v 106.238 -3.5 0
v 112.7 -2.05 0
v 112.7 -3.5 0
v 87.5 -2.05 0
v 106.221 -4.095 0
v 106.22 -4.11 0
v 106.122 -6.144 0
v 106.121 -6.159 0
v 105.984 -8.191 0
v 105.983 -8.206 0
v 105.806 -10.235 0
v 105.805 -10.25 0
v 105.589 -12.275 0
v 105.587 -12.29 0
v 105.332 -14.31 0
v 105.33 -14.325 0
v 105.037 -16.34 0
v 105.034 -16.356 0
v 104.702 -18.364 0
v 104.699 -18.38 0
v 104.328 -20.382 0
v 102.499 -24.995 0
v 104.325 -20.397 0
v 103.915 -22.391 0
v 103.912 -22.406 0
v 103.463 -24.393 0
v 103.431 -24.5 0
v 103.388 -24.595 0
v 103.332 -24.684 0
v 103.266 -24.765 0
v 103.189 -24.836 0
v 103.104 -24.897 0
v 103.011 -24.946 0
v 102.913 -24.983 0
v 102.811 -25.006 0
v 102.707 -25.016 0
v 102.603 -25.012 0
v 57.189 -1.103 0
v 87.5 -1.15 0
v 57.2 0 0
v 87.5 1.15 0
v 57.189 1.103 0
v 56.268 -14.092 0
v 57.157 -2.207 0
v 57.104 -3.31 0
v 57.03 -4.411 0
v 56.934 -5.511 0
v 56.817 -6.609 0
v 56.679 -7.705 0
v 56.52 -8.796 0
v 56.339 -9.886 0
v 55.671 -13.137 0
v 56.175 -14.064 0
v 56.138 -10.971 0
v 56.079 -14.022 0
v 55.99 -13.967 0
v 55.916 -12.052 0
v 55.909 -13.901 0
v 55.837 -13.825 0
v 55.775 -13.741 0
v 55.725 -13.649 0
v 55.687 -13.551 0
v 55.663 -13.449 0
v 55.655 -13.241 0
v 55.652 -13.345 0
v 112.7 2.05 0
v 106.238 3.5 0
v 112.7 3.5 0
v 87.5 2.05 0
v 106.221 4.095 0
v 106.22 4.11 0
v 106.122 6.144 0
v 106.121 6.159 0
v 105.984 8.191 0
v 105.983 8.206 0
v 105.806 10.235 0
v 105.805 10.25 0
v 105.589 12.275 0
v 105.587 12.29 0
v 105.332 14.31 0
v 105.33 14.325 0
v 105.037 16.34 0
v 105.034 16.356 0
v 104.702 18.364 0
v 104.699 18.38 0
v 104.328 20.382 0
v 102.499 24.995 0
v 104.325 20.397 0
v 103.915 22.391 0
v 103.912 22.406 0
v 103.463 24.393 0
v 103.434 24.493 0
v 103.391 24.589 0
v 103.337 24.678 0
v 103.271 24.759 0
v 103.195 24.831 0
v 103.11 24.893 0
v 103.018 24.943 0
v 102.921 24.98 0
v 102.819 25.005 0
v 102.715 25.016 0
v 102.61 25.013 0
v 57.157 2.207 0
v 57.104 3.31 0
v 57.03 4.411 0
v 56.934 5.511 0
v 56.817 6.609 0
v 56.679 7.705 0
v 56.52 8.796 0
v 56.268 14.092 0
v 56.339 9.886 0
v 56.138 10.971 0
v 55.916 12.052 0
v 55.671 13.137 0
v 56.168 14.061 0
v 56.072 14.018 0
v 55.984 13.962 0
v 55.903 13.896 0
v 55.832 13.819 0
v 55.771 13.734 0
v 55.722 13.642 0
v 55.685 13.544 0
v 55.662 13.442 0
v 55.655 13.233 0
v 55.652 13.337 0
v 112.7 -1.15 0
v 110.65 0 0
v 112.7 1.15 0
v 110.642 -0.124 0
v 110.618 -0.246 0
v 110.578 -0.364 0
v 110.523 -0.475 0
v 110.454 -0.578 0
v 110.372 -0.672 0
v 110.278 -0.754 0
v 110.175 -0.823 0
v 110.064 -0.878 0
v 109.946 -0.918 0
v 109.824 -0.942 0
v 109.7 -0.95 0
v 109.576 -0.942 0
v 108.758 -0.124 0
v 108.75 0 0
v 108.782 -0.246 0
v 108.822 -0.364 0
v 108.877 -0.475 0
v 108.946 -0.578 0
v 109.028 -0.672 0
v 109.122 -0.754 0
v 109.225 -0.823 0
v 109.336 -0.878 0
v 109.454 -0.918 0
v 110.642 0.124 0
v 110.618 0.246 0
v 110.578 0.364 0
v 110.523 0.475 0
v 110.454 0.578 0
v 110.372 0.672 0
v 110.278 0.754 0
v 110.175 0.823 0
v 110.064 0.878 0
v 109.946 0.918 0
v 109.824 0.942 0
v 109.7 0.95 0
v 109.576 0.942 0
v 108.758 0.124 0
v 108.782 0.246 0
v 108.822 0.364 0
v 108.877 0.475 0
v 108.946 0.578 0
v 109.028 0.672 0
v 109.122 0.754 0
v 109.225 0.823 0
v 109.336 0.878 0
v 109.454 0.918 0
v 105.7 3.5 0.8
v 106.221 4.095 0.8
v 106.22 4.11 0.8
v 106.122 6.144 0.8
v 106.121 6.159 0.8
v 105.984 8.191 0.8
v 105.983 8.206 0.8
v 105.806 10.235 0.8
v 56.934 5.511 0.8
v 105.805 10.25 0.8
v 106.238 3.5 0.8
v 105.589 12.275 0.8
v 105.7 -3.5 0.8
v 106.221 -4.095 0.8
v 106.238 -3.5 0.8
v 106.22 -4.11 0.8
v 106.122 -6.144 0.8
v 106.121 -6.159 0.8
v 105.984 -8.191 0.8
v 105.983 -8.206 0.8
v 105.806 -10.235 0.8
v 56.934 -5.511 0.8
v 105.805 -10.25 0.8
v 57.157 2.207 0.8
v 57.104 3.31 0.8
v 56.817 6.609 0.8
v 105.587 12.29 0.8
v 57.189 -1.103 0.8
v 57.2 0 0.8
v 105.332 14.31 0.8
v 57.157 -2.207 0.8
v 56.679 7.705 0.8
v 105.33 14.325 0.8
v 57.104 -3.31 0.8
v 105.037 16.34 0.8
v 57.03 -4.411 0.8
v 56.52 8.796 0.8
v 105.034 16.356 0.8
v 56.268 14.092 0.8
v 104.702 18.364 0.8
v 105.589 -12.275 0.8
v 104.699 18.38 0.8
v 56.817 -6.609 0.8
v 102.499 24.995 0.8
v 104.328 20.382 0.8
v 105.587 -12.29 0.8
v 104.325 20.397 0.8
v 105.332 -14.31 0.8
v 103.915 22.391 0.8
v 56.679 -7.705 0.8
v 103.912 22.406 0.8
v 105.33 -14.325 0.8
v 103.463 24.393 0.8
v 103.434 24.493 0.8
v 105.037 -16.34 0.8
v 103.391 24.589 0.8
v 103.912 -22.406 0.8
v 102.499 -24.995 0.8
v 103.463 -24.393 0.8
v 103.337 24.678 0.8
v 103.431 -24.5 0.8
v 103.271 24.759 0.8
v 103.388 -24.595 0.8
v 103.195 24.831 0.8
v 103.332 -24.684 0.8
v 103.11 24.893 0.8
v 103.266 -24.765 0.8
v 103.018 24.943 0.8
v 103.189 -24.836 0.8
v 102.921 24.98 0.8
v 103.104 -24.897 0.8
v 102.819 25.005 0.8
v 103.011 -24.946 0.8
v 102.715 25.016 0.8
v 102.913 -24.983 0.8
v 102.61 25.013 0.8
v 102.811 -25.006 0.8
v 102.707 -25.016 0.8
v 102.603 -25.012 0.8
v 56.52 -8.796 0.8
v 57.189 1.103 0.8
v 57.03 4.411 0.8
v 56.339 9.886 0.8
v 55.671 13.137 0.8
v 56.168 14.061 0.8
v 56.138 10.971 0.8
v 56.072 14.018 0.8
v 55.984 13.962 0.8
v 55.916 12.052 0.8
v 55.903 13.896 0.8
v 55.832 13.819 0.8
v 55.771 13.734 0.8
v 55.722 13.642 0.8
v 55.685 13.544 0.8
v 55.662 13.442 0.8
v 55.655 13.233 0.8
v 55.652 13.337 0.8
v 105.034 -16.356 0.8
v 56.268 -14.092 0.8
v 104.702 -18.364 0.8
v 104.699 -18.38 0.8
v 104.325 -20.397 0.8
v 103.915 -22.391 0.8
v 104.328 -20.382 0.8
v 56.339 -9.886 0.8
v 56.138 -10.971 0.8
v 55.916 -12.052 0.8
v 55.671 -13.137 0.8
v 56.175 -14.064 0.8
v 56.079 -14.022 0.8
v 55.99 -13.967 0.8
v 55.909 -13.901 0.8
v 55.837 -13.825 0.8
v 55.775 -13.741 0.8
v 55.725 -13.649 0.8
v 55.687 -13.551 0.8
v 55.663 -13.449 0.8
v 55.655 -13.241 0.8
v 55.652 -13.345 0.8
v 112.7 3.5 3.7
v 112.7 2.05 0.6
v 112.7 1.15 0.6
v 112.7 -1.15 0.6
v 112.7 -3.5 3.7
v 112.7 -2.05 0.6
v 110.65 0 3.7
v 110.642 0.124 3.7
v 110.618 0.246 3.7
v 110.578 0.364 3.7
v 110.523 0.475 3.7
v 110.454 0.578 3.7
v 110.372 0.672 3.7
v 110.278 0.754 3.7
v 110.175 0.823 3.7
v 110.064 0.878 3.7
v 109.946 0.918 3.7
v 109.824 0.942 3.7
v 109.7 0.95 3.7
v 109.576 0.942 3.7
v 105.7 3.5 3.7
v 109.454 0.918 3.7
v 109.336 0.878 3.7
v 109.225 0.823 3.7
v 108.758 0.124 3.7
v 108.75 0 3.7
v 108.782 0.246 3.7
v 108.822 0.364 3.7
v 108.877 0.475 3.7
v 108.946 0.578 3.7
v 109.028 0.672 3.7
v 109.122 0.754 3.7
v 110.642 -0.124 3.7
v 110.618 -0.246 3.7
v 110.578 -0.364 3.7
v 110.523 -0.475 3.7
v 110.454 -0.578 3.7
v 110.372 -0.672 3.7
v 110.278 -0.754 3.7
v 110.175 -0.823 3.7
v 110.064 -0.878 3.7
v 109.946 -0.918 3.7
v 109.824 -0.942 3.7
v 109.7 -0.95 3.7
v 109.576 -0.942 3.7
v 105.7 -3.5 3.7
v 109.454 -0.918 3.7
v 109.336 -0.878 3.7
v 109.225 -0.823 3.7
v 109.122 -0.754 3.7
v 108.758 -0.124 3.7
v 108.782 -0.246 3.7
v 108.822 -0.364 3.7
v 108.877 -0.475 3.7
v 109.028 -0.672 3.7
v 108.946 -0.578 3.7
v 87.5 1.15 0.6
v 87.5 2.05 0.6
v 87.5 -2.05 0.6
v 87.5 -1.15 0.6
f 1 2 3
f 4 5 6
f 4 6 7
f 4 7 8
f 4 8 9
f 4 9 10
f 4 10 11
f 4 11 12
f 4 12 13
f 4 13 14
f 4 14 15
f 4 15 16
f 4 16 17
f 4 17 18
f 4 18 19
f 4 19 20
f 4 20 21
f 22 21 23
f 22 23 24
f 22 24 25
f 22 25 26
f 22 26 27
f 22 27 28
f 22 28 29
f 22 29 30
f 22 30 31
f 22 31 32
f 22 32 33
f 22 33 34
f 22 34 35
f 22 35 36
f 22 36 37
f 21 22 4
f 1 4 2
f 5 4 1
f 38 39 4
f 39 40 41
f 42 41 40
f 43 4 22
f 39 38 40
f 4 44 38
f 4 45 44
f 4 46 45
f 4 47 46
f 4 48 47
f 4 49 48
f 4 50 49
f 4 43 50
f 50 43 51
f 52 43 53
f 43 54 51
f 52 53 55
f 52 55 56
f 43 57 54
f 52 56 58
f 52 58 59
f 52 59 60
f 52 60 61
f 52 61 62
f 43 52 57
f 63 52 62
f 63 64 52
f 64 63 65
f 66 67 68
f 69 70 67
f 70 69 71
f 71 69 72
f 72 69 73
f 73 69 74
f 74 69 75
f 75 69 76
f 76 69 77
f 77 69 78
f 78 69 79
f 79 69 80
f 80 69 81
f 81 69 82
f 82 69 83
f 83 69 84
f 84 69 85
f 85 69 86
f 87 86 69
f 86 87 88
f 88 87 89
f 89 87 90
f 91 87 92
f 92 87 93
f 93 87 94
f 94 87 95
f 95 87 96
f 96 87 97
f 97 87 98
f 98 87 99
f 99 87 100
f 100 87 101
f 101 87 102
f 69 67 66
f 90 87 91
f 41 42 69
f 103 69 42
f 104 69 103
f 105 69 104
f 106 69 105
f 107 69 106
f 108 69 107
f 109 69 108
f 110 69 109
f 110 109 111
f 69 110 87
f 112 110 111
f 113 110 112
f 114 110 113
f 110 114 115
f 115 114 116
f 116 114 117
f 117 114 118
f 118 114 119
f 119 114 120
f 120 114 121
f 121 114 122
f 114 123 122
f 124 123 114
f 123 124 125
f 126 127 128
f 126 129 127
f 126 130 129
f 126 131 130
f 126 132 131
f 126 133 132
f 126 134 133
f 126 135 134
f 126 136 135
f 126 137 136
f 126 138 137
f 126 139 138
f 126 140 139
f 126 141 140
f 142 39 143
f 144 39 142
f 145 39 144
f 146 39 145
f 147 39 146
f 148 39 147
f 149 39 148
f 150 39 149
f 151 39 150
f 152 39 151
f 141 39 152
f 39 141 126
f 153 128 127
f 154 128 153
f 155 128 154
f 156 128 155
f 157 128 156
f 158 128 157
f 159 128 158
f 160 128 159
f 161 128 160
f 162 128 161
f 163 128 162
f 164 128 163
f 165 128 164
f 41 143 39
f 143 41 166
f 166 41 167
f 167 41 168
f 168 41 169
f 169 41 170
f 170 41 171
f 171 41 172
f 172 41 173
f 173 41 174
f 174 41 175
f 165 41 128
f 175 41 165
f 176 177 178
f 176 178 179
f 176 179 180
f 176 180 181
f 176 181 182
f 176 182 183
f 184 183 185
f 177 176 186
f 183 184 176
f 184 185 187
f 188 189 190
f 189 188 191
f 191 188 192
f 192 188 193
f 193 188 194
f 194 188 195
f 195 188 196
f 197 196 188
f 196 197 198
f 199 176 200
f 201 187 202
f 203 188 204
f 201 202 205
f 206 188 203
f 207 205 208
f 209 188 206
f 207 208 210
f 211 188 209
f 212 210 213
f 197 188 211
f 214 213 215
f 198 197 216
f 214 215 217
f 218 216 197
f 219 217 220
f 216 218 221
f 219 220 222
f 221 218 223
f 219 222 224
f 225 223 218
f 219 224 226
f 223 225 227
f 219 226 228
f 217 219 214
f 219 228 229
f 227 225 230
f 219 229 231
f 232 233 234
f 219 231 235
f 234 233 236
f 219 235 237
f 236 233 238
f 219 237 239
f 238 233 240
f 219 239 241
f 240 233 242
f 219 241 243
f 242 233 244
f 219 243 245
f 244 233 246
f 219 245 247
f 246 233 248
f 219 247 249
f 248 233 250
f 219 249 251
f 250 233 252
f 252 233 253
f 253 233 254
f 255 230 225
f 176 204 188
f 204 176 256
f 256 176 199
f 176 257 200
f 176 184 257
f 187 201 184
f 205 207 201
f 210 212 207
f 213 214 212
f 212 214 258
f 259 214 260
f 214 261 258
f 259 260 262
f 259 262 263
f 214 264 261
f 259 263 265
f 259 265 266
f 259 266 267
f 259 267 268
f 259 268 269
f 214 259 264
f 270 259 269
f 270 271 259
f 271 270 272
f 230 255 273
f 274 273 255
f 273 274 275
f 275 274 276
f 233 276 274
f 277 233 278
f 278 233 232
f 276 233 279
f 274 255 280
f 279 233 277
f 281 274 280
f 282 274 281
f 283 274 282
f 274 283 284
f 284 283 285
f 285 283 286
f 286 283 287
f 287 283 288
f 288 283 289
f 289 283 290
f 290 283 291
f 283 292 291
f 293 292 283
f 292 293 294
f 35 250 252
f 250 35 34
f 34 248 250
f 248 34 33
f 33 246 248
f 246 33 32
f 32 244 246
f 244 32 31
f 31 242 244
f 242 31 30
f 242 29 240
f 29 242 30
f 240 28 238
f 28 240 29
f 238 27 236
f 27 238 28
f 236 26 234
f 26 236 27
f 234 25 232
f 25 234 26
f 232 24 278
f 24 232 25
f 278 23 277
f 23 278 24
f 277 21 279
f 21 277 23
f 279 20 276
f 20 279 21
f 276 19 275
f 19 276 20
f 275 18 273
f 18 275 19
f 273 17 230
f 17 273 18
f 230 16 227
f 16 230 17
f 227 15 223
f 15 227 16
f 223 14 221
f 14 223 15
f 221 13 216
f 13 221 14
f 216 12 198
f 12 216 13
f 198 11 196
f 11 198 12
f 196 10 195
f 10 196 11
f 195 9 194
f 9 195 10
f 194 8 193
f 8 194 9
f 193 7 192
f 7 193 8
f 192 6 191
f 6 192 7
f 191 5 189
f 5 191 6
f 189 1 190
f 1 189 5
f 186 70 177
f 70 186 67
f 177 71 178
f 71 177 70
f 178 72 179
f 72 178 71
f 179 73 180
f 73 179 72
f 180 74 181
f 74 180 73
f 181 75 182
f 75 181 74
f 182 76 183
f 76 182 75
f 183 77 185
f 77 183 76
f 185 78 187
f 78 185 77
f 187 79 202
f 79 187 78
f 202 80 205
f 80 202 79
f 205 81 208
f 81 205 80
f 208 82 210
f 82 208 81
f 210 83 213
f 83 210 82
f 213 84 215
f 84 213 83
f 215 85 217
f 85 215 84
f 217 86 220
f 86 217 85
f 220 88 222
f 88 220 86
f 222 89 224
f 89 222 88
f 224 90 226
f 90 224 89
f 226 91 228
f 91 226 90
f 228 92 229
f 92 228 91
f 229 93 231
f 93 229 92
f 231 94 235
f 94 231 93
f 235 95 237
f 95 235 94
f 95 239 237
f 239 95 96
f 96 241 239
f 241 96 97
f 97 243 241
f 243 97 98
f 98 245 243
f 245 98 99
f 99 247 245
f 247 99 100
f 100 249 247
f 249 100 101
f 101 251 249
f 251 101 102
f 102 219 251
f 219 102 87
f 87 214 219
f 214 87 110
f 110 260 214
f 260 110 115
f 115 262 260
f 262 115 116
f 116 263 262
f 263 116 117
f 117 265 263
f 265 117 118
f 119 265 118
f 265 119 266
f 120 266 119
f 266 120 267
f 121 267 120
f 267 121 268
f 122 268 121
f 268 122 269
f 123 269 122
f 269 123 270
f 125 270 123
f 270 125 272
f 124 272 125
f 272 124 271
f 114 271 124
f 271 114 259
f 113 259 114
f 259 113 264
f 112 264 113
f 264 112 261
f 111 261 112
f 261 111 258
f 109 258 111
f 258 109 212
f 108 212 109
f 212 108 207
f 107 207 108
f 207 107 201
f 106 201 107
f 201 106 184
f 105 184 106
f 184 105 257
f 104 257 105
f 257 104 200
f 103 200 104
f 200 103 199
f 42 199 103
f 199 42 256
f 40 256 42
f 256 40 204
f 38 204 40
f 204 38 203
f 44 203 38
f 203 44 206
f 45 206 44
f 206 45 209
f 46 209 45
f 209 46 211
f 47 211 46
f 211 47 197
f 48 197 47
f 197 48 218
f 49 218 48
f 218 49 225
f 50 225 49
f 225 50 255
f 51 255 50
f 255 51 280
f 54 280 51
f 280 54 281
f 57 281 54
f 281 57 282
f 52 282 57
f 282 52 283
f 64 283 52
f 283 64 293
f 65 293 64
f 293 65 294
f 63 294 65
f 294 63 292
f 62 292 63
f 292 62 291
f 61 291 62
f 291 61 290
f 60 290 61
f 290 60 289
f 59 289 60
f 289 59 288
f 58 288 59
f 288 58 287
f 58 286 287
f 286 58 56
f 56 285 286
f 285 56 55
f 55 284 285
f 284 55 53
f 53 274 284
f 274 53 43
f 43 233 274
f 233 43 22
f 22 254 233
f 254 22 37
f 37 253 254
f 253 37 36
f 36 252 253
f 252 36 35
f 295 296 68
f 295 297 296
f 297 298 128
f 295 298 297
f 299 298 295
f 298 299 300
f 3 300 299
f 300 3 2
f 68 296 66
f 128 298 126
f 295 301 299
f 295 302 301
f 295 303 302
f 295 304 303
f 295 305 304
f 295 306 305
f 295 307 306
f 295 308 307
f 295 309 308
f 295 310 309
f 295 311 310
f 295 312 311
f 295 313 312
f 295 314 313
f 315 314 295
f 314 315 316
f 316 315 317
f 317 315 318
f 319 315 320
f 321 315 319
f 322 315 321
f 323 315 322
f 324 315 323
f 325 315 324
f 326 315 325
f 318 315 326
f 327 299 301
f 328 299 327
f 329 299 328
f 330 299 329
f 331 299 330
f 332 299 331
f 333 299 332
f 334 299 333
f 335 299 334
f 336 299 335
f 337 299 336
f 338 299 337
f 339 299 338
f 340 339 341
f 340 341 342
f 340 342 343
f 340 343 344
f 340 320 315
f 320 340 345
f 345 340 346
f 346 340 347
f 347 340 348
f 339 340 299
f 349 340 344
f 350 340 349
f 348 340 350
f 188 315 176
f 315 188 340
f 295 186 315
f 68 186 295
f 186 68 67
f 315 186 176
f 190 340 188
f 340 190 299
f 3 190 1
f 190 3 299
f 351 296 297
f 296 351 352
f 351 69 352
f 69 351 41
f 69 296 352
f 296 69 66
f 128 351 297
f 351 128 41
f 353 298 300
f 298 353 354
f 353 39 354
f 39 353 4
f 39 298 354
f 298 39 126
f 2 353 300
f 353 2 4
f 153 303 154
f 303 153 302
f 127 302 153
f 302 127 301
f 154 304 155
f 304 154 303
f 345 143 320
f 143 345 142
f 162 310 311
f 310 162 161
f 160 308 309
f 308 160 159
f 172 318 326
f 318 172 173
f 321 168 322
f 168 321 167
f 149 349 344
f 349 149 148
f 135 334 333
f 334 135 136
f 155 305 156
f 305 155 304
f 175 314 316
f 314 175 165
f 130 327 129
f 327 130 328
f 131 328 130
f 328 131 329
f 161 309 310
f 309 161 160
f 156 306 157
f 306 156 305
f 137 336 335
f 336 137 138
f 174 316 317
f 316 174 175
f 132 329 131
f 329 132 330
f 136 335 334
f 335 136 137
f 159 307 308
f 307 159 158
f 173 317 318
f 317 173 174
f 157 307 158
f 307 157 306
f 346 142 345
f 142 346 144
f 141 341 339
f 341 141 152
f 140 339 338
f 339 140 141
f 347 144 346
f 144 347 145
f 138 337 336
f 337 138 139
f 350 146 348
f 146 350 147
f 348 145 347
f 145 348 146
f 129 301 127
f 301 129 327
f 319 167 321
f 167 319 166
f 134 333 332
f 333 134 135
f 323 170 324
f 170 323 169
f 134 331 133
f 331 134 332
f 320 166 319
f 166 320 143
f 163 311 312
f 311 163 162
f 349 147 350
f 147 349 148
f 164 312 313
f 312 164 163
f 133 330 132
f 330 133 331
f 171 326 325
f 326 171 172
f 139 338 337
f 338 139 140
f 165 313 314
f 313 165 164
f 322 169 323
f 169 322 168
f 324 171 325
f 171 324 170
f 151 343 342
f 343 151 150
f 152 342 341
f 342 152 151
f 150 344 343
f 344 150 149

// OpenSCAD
// Gen-CU — bobbin LID (top flange + locating tab). Print x12, flange face DOWN on the bed.
// CA-glue onto the hub top BEFORE winding. Tab = lap joint into the stator tab pocket; 1.75 mm filament
// pin through pin hole + stator ledge, trim flush. Lead slots carry both leads flush.
include <parameters.scad>;
$fn = 48;
module sector_2d(r_in, r_out, ang) {
    polygon([
        for (a = [-ang/2 : ang/24 : ang/2]) [r_in*cos(a), r_in*sin(a)],
        for (a = [ang/2 : -ang/24 : -ang/2]) [r_out*cos(a), r_out*sin(a)]
    ]);
}
module footprint_2d() { offset(r=wall) sector_2d(coil_id_r, coil_od_r, span_deg); }
module hub_2d()       { offset(delta=-coil_core_inset) sector_2d(coil_id_r, coil_od_r, span_deg); }

difference() {
    union() {
        linear_extrude(flange_t) footprint_2d();
        translate([coil_od_r + 0.2, -tab_w/2, 0]) cube([tab_len, tab_w, tab_h]);
    }
    translate([coil_mount_r, 0, -0.1]) cylinder(d=pin_d, h=tab_h + 1);
    for (y = [lead_y, -lead_y])
        translate([coil_od_r - coil_core_inset - 0.5, y - lead_slot_w/2, -0.1])
            cube([coil_core_inset + tab_len + 2, lead_slot_w, lead_groove_d + 0.1]);
}
